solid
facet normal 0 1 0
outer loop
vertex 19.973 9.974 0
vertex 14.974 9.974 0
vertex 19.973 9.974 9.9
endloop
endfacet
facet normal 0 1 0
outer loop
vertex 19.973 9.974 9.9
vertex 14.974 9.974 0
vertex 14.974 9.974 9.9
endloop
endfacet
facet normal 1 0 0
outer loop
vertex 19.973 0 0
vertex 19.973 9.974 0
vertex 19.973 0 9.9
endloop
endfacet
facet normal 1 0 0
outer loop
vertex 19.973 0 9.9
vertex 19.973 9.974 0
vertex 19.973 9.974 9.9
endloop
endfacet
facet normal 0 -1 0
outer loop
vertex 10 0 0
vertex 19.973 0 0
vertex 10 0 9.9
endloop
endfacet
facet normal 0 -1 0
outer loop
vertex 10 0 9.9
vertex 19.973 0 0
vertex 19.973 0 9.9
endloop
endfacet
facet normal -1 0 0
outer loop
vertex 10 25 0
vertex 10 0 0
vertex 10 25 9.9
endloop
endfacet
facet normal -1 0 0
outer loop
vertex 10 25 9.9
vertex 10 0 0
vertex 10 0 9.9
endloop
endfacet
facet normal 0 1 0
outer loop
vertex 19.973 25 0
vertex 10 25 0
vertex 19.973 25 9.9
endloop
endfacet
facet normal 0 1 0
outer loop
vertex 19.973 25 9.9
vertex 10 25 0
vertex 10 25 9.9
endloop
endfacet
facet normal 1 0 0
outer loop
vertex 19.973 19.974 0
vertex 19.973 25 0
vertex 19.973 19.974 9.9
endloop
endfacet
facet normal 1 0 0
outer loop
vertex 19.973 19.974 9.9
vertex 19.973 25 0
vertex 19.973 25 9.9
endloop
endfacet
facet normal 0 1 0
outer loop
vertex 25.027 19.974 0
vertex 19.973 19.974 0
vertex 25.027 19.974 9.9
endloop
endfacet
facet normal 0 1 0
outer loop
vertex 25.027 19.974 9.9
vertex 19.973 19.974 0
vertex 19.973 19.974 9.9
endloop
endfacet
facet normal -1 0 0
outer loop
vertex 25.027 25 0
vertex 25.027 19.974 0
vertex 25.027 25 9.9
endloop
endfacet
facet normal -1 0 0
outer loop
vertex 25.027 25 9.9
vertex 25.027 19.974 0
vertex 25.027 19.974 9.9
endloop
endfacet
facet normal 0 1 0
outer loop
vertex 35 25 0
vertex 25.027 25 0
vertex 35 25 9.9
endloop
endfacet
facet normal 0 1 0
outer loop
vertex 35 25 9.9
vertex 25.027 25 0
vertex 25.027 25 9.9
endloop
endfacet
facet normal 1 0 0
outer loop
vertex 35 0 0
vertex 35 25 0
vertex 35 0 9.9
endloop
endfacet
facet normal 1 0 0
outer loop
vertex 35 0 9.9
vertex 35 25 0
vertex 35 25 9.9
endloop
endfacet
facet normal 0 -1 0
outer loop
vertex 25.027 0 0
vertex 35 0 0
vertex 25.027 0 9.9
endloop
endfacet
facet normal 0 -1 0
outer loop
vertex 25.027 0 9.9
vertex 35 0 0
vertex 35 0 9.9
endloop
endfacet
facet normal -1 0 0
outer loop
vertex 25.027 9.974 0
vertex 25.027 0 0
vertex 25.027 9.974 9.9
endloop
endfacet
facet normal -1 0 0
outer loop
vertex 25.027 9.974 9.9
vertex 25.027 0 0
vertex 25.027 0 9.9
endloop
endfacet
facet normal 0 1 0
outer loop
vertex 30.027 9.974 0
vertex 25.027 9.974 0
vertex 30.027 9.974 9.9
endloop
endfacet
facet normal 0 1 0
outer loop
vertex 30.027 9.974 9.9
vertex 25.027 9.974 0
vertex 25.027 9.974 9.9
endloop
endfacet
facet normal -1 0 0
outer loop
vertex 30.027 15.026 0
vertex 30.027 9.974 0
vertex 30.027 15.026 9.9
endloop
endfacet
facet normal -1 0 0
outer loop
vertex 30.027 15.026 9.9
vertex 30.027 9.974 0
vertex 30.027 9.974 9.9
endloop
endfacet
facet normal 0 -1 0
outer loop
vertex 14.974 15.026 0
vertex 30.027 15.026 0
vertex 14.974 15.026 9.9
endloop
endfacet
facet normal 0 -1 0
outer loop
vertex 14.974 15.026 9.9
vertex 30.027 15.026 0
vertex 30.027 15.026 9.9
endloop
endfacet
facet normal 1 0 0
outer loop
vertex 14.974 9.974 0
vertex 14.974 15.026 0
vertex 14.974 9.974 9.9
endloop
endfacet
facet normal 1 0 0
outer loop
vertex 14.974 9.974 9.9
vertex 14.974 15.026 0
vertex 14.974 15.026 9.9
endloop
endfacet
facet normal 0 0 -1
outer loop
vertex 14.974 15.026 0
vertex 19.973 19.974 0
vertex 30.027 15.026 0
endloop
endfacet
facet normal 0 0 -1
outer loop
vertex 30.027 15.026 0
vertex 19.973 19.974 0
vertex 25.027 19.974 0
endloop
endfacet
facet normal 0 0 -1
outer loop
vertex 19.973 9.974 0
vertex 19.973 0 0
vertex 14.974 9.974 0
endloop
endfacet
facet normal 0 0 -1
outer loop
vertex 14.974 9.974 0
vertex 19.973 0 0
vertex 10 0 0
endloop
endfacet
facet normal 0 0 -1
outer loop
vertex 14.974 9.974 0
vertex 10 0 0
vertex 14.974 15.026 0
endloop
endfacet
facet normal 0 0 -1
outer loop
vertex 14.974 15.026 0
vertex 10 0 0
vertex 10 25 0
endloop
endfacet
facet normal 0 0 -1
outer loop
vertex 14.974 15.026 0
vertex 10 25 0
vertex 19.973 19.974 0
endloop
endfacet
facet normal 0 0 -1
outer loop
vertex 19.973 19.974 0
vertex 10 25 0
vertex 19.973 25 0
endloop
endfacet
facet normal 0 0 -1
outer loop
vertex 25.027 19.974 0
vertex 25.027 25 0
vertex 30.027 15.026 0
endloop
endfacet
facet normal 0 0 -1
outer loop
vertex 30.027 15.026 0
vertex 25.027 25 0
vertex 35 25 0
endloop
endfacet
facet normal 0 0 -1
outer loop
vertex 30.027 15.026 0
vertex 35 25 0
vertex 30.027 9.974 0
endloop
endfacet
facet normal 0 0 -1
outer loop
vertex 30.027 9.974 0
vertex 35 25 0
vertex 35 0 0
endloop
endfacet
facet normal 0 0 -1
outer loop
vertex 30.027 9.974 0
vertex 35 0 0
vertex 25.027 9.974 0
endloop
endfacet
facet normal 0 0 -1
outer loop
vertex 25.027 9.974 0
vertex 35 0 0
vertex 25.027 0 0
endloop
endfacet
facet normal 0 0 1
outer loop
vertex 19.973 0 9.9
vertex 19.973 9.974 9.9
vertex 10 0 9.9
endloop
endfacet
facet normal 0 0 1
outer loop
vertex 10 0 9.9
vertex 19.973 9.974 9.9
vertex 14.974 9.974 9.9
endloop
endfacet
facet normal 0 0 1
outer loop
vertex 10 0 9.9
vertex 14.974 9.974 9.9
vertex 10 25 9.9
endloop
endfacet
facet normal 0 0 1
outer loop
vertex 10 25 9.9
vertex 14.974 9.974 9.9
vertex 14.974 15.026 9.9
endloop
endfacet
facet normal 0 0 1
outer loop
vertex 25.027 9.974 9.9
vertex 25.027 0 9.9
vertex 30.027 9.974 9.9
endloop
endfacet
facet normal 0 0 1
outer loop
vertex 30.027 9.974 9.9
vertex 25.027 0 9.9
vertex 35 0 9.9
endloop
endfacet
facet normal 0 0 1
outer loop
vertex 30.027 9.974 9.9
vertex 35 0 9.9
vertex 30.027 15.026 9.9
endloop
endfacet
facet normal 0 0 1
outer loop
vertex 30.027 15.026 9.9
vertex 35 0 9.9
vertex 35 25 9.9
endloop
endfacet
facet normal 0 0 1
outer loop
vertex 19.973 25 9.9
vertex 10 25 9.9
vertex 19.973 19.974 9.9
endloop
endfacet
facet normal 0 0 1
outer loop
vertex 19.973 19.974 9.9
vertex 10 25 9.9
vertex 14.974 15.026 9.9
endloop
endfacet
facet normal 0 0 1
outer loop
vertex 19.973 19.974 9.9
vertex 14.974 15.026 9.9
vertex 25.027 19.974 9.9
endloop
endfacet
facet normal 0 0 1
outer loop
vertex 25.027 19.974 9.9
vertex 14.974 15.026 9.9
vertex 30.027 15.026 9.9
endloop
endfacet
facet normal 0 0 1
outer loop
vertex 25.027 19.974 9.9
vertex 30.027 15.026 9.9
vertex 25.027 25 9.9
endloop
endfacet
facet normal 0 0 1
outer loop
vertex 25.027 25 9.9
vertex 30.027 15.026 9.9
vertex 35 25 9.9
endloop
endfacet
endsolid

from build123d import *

# Parameters (mm, degrees)
BOSS_EXTRUDE1_DEPTH = 9.899999946


with BuildPart() as part:
    # Sketch1 → Boss-Extrude1 (new body)
    with BuildSketch(Plane.XY.offset(9.899999946)):
        Polygon((14.973999709, 9.973499775), (14.973999709, 15.026499293), (30.026500597, 15.026499293), (30.026500597, 9.973499775), (25.026499852, 9.973499775), (25.026499852, 0), (34.999999627, 0), (34.999999627, 25), (25.026499852, 25), (25.026499852, 19.974000454), (19.973499403, 19.974000454), (19.973499403, 25), (9.999999627, 25), (9.999999627, 0), (19.973499403, 0), (19.973499403, 9.973499775), align=None)
    extrude(amount=-BOSS_EXTRUDE1_DEPTH)


solid = part.part
